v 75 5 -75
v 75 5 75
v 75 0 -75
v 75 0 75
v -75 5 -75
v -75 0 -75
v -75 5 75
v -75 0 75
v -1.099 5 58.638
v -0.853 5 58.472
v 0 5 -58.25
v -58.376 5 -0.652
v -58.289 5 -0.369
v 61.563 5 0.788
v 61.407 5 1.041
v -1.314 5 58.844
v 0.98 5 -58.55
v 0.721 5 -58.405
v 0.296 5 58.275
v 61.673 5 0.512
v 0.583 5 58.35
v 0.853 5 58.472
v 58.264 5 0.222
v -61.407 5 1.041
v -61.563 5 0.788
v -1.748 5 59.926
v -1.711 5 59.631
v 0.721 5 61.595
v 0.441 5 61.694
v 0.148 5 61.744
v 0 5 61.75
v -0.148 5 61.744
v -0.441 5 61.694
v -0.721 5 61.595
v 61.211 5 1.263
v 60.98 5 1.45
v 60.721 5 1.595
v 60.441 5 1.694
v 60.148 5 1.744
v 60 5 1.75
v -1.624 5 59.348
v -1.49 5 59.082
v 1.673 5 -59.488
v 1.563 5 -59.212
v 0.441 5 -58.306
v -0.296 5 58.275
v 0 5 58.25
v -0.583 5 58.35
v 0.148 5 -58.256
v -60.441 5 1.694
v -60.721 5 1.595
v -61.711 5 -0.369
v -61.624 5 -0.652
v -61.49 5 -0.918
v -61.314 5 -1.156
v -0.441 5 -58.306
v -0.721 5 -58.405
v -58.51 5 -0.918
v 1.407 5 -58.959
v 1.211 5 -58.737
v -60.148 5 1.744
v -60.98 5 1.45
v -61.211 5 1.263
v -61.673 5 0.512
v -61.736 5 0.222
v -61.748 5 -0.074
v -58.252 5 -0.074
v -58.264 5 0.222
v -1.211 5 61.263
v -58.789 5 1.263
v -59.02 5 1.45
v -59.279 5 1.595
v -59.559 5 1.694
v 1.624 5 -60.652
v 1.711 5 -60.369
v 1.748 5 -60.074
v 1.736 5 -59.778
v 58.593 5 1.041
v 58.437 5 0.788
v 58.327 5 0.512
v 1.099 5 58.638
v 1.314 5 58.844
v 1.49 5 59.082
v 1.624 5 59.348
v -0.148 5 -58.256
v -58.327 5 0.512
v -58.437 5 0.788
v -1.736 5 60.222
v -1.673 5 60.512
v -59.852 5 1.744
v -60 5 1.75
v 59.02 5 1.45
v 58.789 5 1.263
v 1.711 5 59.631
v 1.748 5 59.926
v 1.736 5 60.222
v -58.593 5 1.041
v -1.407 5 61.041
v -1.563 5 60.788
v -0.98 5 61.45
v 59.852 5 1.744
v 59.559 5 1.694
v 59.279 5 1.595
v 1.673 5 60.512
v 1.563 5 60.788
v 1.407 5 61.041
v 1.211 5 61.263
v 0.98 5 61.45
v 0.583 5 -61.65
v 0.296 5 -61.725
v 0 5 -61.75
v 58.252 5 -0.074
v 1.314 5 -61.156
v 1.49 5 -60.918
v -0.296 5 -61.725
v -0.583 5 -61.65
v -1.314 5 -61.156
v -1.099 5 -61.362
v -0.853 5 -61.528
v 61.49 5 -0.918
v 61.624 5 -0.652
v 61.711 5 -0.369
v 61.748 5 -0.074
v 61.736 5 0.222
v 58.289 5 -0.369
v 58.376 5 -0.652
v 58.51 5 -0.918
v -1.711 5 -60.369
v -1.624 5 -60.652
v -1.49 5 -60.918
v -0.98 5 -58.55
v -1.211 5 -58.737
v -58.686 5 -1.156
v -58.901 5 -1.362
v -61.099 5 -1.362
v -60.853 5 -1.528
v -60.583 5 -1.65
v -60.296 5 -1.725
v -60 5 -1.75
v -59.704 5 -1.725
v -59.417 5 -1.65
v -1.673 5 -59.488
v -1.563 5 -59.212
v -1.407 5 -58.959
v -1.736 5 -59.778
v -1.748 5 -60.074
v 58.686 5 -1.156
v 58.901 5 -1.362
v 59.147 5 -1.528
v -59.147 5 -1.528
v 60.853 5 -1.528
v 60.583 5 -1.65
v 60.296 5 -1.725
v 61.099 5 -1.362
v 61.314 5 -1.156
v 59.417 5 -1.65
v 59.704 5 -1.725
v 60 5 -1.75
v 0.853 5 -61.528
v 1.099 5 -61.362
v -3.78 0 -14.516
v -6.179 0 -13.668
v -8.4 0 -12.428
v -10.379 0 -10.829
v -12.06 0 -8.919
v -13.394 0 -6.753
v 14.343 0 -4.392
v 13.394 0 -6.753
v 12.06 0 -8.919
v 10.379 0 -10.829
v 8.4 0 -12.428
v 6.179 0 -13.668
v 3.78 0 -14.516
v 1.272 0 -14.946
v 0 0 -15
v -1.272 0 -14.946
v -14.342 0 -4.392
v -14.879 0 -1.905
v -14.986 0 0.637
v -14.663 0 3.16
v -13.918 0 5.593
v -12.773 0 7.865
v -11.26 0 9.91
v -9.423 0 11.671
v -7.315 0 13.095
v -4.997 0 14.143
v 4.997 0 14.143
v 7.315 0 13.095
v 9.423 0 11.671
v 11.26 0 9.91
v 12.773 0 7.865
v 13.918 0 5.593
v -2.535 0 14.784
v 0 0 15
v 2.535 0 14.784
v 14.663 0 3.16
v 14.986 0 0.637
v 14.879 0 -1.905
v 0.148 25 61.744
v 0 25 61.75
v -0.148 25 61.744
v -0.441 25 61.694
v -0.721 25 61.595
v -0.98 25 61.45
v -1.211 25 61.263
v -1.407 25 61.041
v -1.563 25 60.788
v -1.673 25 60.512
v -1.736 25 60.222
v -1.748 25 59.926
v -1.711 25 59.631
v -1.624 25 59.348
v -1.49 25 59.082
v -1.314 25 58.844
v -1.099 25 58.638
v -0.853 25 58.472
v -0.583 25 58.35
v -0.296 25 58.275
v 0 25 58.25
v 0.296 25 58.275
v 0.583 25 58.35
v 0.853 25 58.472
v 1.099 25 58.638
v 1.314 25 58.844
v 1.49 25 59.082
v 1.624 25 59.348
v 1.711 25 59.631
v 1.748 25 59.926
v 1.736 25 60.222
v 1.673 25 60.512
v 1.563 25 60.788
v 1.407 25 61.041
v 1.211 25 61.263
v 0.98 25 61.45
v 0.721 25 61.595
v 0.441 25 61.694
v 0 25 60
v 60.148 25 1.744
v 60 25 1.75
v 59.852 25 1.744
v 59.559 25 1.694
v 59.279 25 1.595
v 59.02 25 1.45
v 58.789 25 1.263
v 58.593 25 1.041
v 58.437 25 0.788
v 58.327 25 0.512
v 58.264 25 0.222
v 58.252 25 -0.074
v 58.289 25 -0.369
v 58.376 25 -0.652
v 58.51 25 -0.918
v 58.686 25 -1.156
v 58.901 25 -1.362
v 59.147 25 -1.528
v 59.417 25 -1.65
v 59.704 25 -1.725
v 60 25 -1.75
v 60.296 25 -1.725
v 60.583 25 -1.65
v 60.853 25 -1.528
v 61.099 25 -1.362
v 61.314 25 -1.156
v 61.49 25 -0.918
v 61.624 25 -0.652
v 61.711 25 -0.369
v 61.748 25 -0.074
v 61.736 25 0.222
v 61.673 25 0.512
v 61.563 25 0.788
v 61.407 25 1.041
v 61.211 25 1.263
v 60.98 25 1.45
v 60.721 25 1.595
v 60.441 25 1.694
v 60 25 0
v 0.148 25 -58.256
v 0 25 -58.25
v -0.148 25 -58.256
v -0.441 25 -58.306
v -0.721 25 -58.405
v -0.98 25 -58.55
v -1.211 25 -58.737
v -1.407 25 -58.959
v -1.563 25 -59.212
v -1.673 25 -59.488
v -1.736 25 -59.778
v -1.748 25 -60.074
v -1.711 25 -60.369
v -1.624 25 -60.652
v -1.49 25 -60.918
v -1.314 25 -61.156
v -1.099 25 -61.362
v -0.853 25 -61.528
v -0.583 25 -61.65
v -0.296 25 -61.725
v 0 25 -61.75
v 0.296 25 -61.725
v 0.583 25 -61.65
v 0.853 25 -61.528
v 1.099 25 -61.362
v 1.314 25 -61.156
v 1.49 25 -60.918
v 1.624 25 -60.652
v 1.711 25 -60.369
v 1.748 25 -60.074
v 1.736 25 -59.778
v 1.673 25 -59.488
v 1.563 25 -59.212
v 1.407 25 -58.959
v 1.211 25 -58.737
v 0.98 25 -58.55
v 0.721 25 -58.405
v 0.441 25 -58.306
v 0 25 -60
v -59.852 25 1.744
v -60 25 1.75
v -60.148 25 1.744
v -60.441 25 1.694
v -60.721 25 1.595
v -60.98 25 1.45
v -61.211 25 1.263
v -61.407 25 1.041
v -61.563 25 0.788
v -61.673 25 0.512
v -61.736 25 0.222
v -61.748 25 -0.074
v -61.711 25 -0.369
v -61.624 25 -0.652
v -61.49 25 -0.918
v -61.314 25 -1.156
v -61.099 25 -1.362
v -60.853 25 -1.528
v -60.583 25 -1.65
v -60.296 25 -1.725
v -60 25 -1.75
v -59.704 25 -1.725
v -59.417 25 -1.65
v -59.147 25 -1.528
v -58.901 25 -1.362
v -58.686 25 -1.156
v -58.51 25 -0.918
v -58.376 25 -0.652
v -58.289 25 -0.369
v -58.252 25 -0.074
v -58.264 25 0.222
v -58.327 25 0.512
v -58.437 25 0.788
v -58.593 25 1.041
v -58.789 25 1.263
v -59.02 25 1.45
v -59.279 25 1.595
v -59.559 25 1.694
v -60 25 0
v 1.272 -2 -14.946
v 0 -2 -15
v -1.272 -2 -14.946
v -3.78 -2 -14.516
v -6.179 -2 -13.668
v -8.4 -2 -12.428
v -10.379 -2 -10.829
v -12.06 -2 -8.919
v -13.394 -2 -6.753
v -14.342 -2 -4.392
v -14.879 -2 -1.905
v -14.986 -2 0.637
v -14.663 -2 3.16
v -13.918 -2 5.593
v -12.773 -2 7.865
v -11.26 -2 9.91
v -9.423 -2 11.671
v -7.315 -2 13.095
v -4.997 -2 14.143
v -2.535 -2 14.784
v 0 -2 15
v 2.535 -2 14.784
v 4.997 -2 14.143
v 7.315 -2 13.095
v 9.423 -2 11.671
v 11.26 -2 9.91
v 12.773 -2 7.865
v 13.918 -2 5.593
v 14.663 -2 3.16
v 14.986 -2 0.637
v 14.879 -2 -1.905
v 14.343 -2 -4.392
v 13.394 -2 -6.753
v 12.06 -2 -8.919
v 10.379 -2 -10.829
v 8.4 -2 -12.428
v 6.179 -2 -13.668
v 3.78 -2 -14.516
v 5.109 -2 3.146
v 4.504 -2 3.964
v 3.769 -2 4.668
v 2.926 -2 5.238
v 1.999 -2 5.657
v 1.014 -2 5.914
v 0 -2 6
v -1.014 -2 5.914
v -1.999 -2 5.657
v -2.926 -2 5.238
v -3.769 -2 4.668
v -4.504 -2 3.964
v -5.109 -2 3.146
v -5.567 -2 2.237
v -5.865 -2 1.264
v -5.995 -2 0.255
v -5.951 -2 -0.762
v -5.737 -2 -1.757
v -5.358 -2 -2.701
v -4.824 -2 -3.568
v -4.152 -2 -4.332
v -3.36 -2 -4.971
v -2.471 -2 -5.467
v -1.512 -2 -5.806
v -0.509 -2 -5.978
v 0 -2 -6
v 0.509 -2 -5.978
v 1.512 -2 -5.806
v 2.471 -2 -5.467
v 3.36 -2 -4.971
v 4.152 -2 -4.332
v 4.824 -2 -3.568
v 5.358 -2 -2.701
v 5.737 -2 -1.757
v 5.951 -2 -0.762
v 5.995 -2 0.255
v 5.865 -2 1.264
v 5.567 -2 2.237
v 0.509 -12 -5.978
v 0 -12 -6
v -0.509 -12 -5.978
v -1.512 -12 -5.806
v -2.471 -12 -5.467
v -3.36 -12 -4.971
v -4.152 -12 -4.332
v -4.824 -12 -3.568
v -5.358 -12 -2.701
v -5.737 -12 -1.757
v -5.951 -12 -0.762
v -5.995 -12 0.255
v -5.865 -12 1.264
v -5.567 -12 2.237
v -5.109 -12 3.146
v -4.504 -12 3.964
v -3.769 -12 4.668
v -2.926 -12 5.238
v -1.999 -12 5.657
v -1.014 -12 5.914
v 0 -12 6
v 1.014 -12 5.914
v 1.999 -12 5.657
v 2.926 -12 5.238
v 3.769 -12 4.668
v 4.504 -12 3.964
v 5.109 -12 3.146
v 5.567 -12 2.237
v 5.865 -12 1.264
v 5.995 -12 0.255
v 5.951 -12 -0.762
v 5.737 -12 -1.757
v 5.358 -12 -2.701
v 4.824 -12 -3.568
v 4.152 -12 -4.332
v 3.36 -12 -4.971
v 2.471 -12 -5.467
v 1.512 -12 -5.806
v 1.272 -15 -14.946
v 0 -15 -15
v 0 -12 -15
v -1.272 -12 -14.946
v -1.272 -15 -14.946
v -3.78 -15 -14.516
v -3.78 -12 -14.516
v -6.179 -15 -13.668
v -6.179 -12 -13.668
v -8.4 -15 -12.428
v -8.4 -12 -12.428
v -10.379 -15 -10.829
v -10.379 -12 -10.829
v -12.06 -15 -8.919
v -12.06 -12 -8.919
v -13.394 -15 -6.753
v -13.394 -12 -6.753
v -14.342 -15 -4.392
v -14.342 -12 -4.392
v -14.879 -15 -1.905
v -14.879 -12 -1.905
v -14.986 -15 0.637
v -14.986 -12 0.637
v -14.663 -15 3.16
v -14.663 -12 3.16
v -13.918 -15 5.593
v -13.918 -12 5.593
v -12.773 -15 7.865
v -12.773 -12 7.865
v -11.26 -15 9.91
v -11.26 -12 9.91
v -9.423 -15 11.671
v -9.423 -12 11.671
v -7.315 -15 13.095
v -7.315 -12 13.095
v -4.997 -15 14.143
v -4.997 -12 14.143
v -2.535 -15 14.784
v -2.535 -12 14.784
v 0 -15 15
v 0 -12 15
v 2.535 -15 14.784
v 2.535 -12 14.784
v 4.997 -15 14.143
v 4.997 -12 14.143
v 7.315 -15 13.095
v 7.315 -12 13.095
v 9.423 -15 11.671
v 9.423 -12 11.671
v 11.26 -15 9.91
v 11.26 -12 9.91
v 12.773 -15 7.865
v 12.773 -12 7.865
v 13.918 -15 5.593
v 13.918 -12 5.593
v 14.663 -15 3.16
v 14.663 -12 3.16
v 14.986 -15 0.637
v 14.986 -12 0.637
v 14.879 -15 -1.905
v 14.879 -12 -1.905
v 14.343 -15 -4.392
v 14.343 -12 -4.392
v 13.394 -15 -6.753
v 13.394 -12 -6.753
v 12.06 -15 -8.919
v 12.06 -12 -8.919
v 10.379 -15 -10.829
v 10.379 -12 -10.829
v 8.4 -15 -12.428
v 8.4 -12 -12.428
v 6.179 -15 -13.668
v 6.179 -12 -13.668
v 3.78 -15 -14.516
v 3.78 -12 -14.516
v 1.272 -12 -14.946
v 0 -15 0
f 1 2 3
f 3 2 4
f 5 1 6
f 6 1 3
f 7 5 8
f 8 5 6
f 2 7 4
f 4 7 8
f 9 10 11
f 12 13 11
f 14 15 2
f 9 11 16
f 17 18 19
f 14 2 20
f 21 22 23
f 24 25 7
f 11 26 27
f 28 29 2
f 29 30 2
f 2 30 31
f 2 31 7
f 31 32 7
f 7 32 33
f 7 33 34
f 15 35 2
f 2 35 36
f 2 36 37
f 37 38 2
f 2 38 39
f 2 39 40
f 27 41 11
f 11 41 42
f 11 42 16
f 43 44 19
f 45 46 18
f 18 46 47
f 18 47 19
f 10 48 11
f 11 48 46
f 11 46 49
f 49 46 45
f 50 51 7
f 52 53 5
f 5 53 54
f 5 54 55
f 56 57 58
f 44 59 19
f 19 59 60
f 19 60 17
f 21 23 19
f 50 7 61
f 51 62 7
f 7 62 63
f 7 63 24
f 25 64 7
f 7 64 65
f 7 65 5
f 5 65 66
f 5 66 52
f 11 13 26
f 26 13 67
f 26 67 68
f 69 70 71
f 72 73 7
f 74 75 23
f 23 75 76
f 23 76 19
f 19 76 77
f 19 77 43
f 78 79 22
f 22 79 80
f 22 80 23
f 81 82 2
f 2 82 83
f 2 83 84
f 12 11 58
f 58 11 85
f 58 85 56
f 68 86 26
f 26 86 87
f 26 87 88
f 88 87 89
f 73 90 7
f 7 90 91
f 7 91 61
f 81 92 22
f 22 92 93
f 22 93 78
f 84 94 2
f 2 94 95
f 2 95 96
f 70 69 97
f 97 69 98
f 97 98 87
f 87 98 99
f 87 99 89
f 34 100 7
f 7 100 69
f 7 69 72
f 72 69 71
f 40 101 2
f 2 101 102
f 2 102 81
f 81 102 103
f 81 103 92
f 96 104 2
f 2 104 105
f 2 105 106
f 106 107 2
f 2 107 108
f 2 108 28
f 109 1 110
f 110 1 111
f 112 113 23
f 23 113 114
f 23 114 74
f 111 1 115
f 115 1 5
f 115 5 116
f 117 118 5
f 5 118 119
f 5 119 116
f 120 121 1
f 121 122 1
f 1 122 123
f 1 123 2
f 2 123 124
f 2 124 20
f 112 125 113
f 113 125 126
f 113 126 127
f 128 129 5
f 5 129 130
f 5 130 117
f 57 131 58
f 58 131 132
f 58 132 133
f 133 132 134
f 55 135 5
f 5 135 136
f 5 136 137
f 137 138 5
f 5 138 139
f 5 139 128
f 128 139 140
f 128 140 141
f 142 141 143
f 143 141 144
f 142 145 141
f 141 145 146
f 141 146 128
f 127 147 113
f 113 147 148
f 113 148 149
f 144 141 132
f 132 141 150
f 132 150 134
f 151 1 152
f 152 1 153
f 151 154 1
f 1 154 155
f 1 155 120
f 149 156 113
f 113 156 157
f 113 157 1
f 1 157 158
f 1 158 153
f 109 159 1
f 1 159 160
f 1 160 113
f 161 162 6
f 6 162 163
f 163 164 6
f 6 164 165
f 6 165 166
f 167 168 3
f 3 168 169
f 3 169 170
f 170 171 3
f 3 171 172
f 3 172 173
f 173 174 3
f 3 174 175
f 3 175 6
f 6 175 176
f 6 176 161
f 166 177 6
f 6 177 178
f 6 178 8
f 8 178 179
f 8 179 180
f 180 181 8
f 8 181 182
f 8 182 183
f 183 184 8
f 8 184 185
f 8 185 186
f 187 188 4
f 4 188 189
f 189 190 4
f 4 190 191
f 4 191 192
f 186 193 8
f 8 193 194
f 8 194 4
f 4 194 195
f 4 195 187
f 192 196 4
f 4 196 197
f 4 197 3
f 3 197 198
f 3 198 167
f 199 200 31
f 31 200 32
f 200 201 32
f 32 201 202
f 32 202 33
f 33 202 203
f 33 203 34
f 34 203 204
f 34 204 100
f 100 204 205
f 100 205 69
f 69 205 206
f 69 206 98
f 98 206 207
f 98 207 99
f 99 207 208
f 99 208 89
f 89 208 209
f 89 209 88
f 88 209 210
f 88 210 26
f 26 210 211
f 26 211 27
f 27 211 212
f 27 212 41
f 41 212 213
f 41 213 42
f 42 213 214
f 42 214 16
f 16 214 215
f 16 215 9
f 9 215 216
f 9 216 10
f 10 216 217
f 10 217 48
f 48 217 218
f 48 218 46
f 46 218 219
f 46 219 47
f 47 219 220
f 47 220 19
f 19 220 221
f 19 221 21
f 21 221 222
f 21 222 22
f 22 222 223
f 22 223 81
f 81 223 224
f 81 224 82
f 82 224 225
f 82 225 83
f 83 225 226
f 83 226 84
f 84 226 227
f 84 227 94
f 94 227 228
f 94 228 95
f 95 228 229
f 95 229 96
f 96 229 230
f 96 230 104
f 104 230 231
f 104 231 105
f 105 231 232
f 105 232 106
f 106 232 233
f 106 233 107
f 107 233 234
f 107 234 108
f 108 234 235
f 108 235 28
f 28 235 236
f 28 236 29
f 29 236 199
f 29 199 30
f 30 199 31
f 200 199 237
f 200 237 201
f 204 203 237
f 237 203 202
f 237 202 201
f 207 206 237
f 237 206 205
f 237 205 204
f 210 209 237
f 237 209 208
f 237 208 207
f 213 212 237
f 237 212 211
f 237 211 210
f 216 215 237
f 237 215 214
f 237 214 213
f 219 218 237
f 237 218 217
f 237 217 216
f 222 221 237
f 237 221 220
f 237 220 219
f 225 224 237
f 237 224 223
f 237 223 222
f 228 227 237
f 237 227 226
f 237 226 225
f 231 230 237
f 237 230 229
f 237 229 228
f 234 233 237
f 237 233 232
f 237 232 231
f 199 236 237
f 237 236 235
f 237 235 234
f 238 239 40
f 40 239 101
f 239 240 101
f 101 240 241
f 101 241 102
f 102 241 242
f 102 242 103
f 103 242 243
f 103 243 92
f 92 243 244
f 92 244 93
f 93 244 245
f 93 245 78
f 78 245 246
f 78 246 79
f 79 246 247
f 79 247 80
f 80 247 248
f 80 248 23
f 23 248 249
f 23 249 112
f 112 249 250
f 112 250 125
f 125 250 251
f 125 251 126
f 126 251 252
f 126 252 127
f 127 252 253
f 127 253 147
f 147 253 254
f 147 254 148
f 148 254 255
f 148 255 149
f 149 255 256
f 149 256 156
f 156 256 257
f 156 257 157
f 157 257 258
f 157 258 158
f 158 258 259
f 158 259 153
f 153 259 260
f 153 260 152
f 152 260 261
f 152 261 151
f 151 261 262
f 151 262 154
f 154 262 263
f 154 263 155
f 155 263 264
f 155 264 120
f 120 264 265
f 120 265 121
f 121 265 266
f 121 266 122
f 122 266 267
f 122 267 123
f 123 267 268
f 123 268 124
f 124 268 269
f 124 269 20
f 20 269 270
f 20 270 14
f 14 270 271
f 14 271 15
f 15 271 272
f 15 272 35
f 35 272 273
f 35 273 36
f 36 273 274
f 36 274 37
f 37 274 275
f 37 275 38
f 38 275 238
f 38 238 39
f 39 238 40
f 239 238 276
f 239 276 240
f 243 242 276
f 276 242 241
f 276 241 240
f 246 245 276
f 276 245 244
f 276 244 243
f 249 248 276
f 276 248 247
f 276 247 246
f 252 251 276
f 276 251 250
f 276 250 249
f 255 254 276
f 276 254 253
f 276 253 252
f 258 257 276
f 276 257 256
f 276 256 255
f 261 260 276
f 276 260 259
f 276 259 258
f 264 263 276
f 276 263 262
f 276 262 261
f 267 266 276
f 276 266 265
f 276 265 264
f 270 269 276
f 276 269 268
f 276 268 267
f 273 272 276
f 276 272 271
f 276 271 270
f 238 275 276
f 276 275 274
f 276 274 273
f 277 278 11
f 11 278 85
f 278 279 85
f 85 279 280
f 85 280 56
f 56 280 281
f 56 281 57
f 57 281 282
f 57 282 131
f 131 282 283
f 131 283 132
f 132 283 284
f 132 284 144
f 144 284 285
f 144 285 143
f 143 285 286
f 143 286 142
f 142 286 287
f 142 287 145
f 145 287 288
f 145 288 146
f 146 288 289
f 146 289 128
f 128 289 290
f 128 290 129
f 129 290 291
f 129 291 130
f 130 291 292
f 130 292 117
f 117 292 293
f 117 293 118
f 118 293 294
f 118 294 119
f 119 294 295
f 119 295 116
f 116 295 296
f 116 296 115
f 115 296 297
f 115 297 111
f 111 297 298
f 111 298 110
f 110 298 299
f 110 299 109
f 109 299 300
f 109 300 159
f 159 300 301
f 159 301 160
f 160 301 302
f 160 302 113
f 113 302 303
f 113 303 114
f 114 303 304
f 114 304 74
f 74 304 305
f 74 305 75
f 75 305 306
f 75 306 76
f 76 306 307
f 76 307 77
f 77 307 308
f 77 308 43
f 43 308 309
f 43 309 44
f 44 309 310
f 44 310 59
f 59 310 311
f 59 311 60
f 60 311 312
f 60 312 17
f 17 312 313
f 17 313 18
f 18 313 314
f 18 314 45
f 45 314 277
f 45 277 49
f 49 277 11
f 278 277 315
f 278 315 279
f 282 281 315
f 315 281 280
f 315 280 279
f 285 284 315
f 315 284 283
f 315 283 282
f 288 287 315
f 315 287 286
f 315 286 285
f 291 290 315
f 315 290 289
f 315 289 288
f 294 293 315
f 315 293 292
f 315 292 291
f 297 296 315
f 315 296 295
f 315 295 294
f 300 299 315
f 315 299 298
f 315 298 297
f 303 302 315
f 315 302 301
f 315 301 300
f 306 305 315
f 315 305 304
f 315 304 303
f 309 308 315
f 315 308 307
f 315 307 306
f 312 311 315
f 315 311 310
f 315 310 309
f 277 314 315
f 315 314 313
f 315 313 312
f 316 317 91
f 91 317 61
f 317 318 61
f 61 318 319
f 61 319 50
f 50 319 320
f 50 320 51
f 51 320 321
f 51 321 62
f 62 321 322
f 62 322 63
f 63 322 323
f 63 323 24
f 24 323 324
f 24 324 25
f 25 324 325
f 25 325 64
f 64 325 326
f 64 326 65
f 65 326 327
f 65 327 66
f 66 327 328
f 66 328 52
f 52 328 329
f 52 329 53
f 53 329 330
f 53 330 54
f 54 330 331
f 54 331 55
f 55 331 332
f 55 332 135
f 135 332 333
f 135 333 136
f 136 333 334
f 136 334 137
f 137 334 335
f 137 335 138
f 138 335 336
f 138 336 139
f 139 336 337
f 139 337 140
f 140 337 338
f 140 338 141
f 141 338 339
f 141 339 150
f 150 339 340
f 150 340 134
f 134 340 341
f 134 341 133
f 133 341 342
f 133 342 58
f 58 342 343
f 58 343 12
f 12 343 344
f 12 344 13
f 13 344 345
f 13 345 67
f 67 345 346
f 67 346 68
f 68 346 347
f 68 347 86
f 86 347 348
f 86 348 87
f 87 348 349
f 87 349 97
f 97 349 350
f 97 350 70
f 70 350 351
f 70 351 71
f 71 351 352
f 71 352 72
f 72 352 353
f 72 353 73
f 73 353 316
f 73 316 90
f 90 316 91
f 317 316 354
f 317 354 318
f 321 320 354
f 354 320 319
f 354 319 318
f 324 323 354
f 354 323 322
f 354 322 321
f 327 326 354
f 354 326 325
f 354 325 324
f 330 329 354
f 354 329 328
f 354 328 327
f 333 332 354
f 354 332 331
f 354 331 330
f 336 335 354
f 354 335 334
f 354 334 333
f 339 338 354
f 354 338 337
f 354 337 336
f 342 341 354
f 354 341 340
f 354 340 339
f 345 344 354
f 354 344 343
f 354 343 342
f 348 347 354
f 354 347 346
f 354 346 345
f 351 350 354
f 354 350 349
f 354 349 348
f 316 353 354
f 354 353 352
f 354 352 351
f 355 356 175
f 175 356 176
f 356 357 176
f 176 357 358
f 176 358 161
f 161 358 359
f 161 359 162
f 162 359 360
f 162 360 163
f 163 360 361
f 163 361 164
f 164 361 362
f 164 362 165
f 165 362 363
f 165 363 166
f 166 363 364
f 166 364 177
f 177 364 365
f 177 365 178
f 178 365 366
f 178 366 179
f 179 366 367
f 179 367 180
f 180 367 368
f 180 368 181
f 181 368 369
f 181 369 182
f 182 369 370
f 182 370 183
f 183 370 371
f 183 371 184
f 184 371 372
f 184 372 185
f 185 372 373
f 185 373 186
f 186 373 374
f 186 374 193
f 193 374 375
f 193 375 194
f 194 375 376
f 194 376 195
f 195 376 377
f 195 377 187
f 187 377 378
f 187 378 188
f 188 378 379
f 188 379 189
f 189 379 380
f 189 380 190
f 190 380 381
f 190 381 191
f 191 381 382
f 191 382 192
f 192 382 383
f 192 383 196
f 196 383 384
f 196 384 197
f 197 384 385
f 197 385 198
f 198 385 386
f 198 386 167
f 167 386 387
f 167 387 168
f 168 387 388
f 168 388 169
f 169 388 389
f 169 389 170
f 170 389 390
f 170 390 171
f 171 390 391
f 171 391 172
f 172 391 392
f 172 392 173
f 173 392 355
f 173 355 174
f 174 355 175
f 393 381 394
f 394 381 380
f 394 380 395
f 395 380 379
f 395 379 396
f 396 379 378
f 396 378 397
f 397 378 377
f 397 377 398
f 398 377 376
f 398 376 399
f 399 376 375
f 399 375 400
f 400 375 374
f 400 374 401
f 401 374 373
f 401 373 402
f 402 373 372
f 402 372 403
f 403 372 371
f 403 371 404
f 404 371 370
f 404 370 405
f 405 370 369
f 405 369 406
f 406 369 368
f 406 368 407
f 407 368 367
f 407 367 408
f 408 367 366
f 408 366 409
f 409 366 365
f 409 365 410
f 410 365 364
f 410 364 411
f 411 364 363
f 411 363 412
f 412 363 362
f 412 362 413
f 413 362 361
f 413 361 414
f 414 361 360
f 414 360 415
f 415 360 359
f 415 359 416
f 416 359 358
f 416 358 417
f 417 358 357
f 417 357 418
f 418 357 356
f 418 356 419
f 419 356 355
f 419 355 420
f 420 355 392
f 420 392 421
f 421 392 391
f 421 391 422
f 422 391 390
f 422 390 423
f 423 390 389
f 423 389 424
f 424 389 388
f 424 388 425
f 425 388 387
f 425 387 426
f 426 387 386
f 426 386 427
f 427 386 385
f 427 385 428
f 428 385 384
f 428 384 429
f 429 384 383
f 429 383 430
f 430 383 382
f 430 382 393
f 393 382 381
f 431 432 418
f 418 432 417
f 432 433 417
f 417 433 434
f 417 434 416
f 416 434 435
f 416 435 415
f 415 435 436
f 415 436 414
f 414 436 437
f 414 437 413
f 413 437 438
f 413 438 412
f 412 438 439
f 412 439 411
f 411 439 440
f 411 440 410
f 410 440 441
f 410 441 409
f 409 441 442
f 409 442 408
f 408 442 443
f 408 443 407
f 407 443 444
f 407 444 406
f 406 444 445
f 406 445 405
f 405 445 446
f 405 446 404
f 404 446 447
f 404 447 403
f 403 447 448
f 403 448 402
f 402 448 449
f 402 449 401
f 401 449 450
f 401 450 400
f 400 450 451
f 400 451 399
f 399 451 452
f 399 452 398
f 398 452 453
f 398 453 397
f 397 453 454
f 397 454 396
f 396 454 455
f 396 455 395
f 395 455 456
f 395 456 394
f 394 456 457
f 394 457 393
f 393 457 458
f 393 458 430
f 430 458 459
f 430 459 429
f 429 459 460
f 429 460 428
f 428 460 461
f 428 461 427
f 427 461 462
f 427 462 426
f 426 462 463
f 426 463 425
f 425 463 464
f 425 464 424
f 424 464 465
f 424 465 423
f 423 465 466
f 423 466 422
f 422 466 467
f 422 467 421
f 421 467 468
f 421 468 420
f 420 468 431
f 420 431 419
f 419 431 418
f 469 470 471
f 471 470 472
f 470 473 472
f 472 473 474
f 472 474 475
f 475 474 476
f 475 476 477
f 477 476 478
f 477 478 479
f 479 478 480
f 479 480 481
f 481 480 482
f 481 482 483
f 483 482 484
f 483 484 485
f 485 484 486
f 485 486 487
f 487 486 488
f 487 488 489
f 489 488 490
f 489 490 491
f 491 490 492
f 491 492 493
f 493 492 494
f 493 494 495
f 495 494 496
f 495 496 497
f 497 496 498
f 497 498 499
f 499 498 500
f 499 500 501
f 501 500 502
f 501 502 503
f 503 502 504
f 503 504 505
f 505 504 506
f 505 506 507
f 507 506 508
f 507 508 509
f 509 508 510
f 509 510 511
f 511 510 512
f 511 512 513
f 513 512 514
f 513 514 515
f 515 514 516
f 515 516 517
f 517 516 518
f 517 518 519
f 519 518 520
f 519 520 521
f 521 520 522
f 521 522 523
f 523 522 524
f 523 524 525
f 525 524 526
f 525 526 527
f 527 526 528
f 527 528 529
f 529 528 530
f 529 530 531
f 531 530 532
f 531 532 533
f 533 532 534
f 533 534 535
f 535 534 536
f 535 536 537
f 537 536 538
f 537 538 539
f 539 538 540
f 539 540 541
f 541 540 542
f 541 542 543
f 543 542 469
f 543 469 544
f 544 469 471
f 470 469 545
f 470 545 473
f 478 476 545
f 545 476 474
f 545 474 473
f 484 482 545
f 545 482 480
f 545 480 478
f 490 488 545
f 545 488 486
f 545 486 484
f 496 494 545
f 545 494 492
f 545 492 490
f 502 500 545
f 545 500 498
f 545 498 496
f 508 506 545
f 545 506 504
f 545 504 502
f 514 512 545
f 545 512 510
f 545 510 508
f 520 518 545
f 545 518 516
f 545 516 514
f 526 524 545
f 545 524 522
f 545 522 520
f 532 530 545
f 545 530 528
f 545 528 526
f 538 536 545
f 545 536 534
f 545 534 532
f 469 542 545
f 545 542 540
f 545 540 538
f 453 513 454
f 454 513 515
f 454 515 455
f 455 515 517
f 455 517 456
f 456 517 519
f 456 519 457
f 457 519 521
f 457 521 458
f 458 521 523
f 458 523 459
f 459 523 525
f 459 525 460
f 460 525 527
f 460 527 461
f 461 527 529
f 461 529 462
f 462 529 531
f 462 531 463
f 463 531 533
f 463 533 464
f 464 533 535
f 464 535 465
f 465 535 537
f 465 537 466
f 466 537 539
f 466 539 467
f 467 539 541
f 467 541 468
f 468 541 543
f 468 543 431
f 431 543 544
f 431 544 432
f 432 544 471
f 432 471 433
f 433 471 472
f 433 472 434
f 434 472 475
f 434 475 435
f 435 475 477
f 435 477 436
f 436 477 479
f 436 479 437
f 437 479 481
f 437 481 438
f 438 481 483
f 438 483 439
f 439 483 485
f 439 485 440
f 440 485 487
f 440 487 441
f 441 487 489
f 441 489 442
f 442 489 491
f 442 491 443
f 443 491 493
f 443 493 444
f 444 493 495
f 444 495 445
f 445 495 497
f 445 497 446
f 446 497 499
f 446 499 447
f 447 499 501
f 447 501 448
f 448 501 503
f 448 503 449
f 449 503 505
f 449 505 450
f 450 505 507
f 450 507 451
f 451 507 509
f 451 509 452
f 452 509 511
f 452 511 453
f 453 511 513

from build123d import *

# Parameters (mm, degrees)
SKETCH1_W           = 150
SKETCH1_H           = 150
BOSS_EXTRUDE1_DEPTH = 5
SKETCH2_R           = 1.75
BOSS_EXTRUDE2_DEPTH = 20
SKETCH3_R           = 15
BOSS_EXTRUDE4_DEPTH = 2
SKETCH5_R           = 6
BOSS_EXTRUDE5_DEPTH = 10
SKETCH6_R           = 15
BOSS_EXTRUDE6_DEPTH = 3


with BuildPart() as part:
    # Sketch1 → Boss-Extrude1 (new body)
    with BuildSketch(Plane(origin=(0, 0, 0), x_dir=(1, 0, 0), z_dir=(0, 1, 0))):
        Rectangle(SKETCH1_W, SKETCH1_H)
    extrude(amount=BOSS_EXTRUDE1_DEPTH)

    # Sketch2 → Boss-Extrude2 (add)
    with BuildSketch(Plane(origin=(0, 5, 0), x_dir=(1, 0, 0), z_dir=(0, 1, 0))):
        with Locations((-60, 0)):
            Circle(SKETCH2_R)
        with Locations((0, 60)):
            Circle(SKETCH2_R)
        with Locations((60, 0)):
            Circle(SKETCH2_R)
        with Locations((0, -60)):
            Circle(SKETCH2_R)
    extrude(amount=BOSS_EXTRUDE2_DEPTH)

    # Sketch3 → Boss-Extrude4 (add)
    with BuildSketch(Plane.XZ):
        Circle(SKETCH3_R)
    extrude(amount=BOSS_EXTRUDE4_DEPTH)

    # Sketch5 → Boss-Extrude5 (add)
    with BuildSketch(Plane.XZ.offset(2)):
        Circle(SKETCH5_R)
    extrude(amount=BOSS_EXTRUDE5_DEPTH)

    # Sketch6 → Boss-Extrude6 (add)
    with BuildSketch(Plane.XZ.offset(12)):
        Circle(SKETCH6_R)
    extrude(amount=BOSS_EXTRUDE6_DEPTH)


solid = part.part
